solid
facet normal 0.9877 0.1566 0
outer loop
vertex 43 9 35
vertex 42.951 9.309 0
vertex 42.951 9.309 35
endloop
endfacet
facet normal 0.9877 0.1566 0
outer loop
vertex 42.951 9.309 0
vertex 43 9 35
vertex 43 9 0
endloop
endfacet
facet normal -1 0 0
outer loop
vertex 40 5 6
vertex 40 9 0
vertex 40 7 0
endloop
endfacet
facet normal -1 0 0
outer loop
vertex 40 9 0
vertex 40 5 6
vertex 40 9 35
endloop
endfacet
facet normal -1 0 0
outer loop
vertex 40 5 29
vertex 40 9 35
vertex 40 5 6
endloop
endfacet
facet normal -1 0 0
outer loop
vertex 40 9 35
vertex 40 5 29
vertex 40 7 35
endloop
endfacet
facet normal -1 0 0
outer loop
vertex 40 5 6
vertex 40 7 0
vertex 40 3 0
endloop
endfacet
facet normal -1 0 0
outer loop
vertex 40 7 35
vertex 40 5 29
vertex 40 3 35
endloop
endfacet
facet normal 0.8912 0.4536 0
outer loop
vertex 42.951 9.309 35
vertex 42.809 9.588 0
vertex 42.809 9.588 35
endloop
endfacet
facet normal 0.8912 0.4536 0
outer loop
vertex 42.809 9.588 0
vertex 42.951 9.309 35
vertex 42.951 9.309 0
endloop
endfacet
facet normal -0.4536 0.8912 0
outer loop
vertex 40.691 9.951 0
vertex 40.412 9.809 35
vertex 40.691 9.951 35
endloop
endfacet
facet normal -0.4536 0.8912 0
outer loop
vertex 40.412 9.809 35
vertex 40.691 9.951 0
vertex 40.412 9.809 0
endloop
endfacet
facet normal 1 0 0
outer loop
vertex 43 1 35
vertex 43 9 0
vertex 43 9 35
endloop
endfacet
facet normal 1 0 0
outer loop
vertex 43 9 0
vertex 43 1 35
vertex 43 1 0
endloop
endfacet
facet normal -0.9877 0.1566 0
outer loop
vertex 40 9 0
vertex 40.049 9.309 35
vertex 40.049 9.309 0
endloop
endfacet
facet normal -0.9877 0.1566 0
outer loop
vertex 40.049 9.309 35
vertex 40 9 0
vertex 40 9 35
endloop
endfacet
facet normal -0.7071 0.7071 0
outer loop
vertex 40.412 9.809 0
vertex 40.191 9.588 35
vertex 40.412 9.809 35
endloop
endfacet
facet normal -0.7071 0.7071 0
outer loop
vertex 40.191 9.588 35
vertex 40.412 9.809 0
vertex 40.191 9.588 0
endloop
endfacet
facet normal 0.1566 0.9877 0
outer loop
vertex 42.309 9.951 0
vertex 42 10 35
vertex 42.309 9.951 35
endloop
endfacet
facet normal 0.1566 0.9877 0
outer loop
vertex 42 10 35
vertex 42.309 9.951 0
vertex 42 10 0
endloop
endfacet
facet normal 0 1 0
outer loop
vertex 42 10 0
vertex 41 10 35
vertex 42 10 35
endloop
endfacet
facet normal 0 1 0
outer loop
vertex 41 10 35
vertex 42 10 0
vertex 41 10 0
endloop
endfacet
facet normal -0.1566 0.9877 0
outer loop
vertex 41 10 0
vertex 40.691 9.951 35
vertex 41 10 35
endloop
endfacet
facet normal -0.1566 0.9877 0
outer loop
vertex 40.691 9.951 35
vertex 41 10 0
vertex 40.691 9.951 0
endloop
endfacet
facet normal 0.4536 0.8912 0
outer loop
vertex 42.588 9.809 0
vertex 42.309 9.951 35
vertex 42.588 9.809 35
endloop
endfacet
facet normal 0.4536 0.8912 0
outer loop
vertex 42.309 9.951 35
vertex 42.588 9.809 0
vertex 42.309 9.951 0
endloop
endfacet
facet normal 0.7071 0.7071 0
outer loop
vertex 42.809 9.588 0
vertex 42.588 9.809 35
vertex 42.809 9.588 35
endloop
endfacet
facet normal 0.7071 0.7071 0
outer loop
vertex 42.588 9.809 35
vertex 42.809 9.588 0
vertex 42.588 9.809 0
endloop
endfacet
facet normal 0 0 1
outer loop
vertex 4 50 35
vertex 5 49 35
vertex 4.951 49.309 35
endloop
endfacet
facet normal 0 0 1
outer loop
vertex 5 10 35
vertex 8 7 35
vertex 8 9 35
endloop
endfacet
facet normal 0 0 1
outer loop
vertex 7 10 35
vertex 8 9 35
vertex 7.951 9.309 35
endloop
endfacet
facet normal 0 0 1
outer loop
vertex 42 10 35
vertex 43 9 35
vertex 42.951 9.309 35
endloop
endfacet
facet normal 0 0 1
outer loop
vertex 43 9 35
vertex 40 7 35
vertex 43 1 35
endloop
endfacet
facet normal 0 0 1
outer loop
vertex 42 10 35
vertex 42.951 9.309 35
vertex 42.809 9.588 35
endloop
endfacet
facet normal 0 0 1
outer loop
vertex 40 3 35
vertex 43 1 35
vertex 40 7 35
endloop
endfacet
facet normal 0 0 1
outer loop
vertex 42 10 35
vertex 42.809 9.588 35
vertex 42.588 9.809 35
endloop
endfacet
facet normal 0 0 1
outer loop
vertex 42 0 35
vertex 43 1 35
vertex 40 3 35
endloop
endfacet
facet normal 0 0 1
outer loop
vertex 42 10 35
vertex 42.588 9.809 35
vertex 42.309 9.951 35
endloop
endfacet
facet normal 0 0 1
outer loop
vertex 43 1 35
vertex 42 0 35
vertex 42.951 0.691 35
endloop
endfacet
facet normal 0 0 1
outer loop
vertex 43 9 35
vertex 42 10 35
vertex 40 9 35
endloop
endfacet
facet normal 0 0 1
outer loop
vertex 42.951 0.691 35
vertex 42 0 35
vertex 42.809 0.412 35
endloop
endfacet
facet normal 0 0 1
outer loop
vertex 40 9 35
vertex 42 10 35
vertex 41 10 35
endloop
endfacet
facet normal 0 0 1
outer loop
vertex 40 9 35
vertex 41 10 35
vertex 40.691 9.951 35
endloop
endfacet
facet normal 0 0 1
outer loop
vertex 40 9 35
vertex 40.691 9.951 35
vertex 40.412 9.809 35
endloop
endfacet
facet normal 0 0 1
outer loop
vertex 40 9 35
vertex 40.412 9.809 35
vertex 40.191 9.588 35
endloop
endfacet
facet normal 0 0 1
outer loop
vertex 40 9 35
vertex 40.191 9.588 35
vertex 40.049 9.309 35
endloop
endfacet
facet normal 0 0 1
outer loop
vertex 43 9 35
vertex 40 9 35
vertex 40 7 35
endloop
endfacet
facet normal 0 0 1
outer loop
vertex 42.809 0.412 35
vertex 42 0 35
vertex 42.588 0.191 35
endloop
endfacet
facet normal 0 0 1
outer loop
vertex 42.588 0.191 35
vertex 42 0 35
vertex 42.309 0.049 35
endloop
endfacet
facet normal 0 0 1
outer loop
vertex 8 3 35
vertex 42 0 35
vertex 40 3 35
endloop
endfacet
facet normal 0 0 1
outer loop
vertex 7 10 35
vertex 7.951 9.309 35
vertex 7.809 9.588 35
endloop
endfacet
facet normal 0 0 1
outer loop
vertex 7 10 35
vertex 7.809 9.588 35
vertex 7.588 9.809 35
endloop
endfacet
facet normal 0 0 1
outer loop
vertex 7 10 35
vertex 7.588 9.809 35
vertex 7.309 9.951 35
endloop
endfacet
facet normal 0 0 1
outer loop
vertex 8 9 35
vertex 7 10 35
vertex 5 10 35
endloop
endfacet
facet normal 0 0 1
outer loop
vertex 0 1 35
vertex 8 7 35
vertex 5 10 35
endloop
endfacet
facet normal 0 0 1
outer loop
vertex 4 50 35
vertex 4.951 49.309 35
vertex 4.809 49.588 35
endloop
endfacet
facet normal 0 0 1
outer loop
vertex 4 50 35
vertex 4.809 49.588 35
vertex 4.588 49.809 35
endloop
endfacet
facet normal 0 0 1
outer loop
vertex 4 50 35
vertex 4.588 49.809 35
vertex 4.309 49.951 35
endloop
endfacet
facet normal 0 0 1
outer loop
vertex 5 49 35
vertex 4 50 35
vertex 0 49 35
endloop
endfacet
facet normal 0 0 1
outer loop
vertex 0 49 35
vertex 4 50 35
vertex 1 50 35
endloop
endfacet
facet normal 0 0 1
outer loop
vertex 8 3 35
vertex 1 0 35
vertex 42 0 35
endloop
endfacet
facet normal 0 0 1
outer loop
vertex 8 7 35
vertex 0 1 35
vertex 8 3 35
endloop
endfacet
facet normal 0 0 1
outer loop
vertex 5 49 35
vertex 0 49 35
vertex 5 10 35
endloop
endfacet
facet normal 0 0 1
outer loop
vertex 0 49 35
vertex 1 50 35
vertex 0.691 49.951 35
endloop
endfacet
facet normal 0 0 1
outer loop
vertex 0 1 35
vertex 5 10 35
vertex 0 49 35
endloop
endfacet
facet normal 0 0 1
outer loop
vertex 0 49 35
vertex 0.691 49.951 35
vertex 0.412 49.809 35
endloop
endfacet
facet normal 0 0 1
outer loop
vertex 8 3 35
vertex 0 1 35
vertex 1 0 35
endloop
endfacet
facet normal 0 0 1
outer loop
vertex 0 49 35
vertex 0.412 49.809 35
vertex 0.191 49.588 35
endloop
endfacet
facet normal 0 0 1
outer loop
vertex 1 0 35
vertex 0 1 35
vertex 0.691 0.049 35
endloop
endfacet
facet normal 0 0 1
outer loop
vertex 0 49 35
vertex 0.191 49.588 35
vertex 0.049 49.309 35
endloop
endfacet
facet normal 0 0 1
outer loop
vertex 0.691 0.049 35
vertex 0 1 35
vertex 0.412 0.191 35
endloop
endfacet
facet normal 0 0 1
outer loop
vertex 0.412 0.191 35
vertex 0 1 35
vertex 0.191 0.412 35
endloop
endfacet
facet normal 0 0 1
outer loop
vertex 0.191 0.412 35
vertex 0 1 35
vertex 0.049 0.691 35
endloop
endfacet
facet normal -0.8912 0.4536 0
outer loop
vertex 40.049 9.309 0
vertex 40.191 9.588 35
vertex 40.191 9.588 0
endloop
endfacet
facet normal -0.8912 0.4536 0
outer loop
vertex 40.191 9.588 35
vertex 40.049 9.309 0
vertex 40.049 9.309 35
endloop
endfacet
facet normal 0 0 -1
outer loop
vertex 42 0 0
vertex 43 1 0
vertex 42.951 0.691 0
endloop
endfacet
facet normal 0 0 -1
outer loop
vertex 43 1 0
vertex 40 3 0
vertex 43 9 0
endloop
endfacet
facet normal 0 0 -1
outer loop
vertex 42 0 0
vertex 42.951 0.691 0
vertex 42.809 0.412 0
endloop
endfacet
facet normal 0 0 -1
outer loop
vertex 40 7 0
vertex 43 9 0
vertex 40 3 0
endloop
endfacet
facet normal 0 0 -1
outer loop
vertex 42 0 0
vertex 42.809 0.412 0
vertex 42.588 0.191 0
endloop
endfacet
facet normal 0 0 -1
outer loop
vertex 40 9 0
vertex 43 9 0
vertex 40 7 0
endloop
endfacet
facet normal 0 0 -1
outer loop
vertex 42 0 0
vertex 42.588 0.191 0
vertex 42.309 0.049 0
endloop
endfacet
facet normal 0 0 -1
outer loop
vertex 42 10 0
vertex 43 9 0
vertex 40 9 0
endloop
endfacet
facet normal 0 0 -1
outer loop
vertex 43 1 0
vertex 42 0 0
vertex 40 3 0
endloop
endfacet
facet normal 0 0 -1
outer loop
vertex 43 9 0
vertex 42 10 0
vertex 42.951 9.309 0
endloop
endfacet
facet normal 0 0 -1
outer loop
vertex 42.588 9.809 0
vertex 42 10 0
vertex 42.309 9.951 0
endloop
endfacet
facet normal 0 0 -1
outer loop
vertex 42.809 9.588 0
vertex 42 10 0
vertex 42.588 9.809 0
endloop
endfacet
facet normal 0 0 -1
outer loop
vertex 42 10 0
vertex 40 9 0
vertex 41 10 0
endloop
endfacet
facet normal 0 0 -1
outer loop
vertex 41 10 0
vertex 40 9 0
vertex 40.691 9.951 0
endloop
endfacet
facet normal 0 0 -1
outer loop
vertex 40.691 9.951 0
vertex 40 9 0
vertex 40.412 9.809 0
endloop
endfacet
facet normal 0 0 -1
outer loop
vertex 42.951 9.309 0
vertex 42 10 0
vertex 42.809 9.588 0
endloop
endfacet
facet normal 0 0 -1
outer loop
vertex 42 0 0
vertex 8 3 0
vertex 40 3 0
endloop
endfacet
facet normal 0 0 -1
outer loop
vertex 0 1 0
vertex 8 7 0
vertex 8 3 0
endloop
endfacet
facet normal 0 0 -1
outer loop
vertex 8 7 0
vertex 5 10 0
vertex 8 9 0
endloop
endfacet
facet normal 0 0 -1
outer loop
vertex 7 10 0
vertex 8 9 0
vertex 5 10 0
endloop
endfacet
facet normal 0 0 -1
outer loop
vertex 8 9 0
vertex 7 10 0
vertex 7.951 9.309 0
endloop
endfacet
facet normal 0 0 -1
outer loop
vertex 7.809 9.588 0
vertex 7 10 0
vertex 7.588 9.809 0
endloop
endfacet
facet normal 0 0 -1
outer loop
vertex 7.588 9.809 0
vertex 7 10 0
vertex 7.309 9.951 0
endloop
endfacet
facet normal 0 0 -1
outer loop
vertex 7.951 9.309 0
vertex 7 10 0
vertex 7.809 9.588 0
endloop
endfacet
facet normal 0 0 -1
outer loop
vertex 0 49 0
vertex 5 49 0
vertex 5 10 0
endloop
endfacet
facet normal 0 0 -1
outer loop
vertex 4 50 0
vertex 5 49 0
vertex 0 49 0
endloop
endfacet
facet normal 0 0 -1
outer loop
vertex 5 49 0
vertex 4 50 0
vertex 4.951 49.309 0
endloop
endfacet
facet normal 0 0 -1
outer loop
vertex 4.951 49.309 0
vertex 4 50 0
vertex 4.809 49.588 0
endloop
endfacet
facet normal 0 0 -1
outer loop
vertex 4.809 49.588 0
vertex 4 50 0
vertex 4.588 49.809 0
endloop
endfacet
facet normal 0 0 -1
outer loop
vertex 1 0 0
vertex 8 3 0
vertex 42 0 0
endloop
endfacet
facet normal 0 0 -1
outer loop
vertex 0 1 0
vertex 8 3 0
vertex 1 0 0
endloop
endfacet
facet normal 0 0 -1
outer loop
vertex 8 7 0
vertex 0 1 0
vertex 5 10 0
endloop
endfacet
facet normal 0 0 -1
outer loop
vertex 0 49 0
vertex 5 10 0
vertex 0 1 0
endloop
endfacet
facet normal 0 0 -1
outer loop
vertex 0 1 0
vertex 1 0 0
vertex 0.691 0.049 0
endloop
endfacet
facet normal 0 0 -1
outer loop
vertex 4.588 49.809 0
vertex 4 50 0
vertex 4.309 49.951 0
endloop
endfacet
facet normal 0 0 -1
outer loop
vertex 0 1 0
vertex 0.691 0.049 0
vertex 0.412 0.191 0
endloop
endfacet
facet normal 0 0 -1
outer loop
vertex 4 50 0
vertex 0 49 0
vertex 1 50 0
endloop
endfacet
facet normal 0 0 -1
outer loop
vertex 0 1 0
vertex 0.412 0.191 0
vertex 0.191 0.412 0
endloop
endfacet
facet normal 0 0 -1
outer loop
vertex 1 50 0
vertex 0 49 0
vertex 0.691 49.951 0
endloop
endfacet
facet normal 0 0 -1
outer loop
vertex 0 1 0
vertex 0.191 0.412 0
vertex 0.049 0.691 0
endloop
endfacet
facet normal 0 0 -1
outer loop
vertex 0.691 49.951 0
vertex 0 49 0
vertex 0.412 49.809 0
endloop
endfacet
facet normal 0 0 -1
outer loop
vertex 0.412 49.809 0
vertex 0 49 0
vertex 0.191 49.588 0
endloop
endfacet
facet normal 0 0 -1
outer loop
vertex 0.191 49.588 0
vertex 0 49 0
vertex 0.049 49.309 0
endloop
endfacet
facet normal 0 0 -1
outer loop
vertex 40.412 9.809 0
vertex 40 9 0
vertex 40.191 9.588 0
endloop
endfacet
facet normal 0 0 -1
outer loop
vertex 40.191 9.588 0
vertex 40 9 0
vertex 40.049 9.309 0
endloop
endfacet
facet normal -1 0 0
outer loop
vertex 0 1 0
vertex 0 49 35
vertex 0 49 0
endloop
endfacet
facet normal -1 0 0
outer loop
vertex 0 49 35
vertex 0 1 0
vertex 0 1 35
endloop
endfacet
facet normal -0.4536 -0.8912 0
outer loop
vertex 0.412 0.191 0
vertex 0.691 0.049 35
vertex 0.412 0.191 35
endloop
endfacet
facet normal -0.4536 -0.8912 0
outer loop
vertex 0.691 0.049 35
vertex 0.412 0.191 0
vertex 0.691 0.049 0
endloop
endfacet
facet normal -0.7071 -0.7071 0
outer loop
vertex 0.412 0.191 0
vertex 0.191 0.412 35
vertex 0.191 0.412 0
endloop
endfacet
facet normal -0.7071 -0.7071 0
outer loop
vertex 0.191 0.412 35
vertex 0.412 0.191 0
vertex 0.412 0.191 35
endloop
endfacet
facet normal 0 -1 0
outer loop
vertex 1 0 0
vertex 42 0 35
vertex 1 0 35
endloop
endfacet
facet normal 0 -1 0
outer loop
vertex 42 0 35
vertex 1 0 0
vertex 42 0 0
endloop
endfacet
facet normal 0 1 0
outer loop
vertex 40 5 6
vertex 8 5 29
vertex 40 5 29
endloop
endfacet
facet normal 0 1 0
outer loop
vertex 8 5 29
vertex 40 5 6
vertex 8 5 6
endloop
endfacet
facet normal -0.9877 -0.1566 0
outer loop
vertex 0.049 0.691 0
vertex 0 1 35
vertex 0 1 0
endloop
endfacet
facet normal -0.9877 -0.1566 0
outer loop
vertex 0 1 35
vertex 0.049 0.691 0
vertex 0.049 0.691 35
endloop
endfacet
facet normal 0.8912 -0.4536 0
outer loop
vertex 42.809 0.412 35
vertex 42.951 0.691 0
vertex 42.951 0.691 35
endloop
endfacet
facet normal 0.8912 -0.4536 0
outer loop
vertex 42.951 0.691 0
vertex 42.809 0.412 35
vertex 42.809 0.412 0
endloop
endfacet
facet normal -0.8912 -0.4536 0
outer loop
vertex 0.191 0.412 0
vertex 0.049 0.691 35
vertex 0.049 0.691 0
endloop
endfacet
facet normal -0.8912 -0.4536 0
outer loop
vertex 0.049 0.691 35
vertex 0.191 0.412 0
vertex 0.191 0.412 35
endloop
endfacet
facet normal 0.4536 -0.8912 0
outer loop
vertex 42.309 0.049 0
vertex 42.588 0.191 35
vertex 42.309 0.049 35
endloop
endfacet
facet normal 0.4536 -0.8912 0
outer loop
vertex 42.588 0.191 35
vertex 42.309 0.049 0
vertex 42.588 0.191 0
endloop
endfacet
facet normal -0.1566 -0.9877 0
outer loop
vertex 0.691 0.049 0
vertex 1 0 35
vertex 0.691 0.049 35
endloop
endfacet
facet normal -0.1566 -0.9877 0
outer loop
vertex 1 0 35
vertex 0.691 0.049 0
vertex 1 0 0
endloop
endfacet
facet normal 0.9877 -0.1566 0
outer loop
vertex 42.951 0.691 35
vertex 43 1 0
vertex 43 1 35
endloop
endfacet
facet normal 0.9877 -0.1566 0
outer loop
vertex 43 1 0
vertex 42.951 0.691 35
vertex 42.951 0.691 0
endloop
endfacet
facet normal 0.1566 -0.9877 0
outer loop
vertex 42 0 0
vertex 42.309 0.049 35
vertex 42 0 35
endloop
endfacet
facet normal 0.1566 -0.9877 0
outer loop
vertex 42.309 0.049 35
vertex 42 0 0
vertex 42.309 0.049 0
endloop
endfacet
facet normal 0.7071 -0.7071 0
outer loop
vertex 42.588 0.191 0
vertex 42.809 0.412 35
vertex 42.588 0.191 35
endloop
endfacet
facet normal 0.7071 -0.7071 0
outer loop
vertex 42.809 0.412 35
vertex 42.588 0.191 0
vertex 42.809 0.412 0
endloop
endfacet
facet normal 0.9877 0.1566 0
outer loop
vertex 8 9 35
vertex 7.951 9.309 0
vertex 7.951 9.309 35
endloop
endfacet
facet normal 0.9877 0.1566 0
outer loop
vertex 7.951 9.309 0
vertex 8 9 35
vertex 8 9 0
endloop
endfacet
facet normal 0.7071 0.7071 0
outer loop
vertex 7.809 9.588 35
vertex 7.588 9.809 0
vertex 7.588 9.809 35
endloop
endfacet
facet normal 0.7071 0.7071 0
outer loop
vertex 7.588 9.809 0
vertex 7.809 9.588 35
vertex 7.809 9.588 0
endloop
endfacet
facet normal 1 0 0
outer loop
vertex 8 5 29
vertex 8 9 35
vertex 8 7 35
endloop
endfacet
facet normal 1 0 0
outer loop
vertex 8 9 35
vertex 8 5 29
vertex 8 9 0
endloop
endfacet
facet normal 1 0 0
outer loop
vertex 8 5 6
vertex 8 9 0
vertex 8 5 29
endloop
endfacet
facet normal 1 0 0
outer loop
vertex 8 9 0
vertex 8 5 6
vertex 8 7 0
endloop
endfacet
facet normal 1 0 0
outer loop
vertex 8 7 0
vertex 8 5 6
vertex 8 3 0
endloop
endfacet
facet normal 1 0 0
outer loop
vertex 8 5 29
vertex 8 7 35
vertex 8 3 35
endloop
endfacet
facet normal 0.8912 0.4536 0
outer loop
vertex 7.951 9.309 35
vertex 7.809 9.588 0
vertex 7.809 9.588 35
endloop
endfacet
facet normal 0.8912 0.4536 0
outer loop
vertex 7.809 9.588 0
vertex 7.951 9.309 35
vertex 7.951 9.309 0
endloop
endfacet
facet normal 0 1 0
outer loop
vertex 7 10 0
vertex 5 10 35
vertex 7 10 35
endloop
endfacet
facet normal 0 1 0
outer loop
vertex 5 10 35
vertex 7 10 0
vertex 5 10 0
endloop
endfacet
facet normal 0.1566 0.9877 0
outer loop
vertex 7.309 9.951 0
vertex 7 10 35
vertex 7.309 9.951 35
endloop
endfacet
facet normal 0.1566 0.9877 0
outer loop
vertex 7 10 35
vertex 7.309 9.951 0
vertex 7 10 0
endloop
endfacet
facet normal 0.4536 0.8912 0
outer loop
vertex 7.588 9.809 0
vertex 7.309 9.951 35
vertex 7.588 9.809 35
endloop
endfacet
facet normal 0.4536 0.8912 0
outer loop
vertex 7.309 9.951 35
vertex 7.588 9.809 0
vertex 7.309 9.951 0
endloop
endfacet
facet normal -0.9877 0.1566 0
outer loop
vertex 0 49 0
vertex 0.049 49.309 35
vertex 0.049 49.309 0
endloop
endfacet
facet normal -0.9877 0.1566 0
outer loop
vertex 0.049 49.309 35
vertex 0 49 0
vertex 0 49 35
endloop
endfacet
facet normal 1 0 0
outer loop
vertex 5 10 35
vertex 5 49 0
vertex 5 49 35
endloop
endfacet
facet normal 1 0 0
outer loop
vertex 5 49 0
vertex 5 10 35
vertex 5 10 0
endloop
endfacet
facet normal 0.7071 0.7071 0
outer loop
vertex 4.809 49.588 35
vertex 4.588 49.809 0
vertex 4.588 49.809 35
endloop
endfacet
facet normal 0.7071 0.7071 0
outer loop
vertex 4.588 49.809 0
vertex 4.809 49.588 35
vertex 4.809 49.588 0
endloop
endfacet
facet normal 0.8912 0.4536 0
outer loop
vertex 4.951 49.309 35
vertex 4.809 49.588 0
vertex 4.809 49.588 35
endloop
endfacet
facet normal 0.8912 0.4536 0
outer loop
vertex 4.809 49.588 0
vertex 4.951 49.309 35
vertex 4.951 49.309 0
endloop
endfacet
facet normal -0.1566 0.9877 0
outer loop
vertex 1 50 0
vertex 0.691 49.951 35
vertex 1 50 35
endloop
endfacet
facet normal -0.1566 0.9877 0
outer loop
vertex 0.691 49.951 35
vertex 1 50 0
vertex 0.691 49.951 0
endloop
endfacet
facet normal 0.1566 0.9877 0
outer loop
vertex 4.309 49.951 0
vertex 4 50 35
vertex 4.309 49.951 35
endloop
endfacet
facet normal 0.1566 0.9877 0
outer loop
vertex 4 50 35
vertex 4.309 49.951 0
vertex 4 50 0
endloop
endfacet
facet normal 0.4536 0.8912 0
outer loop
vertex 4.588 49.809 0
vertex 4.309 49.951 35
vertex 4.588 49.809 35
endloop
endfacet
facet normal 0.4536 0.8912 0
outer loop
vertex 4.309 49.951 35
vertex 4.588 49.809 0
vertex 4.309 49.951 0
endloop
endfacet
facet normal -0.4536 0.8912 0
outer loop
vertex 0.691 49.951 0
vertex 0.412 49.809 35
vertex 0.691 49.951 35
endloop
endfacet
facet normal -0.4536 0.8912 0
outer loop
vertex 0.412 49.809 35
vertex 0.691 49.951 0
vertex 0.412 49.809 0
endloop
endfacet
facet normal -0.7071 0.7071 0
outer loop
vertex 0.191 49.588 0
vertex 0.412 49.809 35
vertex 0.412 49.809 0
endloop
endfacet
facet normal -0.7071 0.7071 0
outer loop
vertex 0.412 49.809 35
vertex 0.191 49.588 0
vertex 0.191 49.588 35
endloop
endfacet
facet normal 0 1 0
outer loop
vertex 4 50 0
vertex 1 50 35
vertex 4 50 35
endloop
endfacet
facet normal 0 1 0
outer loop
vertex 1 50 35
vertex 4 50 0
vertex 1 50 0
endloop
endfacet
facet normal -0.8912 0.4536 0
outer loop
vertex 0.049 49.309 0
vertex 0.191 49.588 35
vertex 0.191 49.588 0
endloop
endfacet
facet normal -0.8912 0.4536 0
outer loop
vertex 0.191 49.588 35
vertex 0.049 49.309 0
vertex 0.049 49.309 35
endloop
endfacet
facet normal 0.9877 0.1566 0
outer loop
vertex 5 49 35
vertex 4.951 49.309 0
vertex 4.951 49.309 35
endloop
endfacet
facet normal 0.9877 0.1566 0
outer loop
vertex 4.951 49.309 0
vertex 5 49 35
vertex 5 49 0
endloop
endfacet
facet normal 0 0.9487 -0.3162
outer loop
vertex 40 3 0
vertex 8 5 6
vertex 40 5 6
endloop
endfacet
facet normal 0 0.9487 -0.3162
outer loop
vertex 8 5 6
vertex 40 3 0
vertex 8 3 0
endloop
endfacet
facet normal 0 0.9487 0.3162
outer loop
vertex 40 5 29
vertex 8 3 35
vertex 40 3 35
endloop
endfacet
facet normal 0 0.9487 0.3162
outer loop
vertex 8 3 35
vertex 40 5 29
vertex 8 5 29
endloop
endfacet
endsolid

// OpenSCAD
// x-axis: 5, 3, 32, 3
// y-axis: 50, 10, 5
// z-axis: 35

module hanger(round_r) {
    r = round_r;
    $fn = 20;
    minkowski()
    {
        linear_extrude(height=35-r) polygon([
            [r,r], [43-r,r], [43-r,10-r],
            [40+r,10-r], [40+r,5-r], [8-r,5-r], [8-r,10-r], [5-r,10-r],
            [5-r,50-r], [r,50-r]]);
        
        cylinder(r=r,h=1);
    }
}

module fillet() {
    translate([8,5]) scale([1,2,6]) rotate([0,90,0]) cylinder(h=32,r=1,$fn=4);
}

difference() {
    hanger(round_r=1);
    
    translate([0,0,0]) fillet();
    translate([0,0,35]) fillet();
    
}
